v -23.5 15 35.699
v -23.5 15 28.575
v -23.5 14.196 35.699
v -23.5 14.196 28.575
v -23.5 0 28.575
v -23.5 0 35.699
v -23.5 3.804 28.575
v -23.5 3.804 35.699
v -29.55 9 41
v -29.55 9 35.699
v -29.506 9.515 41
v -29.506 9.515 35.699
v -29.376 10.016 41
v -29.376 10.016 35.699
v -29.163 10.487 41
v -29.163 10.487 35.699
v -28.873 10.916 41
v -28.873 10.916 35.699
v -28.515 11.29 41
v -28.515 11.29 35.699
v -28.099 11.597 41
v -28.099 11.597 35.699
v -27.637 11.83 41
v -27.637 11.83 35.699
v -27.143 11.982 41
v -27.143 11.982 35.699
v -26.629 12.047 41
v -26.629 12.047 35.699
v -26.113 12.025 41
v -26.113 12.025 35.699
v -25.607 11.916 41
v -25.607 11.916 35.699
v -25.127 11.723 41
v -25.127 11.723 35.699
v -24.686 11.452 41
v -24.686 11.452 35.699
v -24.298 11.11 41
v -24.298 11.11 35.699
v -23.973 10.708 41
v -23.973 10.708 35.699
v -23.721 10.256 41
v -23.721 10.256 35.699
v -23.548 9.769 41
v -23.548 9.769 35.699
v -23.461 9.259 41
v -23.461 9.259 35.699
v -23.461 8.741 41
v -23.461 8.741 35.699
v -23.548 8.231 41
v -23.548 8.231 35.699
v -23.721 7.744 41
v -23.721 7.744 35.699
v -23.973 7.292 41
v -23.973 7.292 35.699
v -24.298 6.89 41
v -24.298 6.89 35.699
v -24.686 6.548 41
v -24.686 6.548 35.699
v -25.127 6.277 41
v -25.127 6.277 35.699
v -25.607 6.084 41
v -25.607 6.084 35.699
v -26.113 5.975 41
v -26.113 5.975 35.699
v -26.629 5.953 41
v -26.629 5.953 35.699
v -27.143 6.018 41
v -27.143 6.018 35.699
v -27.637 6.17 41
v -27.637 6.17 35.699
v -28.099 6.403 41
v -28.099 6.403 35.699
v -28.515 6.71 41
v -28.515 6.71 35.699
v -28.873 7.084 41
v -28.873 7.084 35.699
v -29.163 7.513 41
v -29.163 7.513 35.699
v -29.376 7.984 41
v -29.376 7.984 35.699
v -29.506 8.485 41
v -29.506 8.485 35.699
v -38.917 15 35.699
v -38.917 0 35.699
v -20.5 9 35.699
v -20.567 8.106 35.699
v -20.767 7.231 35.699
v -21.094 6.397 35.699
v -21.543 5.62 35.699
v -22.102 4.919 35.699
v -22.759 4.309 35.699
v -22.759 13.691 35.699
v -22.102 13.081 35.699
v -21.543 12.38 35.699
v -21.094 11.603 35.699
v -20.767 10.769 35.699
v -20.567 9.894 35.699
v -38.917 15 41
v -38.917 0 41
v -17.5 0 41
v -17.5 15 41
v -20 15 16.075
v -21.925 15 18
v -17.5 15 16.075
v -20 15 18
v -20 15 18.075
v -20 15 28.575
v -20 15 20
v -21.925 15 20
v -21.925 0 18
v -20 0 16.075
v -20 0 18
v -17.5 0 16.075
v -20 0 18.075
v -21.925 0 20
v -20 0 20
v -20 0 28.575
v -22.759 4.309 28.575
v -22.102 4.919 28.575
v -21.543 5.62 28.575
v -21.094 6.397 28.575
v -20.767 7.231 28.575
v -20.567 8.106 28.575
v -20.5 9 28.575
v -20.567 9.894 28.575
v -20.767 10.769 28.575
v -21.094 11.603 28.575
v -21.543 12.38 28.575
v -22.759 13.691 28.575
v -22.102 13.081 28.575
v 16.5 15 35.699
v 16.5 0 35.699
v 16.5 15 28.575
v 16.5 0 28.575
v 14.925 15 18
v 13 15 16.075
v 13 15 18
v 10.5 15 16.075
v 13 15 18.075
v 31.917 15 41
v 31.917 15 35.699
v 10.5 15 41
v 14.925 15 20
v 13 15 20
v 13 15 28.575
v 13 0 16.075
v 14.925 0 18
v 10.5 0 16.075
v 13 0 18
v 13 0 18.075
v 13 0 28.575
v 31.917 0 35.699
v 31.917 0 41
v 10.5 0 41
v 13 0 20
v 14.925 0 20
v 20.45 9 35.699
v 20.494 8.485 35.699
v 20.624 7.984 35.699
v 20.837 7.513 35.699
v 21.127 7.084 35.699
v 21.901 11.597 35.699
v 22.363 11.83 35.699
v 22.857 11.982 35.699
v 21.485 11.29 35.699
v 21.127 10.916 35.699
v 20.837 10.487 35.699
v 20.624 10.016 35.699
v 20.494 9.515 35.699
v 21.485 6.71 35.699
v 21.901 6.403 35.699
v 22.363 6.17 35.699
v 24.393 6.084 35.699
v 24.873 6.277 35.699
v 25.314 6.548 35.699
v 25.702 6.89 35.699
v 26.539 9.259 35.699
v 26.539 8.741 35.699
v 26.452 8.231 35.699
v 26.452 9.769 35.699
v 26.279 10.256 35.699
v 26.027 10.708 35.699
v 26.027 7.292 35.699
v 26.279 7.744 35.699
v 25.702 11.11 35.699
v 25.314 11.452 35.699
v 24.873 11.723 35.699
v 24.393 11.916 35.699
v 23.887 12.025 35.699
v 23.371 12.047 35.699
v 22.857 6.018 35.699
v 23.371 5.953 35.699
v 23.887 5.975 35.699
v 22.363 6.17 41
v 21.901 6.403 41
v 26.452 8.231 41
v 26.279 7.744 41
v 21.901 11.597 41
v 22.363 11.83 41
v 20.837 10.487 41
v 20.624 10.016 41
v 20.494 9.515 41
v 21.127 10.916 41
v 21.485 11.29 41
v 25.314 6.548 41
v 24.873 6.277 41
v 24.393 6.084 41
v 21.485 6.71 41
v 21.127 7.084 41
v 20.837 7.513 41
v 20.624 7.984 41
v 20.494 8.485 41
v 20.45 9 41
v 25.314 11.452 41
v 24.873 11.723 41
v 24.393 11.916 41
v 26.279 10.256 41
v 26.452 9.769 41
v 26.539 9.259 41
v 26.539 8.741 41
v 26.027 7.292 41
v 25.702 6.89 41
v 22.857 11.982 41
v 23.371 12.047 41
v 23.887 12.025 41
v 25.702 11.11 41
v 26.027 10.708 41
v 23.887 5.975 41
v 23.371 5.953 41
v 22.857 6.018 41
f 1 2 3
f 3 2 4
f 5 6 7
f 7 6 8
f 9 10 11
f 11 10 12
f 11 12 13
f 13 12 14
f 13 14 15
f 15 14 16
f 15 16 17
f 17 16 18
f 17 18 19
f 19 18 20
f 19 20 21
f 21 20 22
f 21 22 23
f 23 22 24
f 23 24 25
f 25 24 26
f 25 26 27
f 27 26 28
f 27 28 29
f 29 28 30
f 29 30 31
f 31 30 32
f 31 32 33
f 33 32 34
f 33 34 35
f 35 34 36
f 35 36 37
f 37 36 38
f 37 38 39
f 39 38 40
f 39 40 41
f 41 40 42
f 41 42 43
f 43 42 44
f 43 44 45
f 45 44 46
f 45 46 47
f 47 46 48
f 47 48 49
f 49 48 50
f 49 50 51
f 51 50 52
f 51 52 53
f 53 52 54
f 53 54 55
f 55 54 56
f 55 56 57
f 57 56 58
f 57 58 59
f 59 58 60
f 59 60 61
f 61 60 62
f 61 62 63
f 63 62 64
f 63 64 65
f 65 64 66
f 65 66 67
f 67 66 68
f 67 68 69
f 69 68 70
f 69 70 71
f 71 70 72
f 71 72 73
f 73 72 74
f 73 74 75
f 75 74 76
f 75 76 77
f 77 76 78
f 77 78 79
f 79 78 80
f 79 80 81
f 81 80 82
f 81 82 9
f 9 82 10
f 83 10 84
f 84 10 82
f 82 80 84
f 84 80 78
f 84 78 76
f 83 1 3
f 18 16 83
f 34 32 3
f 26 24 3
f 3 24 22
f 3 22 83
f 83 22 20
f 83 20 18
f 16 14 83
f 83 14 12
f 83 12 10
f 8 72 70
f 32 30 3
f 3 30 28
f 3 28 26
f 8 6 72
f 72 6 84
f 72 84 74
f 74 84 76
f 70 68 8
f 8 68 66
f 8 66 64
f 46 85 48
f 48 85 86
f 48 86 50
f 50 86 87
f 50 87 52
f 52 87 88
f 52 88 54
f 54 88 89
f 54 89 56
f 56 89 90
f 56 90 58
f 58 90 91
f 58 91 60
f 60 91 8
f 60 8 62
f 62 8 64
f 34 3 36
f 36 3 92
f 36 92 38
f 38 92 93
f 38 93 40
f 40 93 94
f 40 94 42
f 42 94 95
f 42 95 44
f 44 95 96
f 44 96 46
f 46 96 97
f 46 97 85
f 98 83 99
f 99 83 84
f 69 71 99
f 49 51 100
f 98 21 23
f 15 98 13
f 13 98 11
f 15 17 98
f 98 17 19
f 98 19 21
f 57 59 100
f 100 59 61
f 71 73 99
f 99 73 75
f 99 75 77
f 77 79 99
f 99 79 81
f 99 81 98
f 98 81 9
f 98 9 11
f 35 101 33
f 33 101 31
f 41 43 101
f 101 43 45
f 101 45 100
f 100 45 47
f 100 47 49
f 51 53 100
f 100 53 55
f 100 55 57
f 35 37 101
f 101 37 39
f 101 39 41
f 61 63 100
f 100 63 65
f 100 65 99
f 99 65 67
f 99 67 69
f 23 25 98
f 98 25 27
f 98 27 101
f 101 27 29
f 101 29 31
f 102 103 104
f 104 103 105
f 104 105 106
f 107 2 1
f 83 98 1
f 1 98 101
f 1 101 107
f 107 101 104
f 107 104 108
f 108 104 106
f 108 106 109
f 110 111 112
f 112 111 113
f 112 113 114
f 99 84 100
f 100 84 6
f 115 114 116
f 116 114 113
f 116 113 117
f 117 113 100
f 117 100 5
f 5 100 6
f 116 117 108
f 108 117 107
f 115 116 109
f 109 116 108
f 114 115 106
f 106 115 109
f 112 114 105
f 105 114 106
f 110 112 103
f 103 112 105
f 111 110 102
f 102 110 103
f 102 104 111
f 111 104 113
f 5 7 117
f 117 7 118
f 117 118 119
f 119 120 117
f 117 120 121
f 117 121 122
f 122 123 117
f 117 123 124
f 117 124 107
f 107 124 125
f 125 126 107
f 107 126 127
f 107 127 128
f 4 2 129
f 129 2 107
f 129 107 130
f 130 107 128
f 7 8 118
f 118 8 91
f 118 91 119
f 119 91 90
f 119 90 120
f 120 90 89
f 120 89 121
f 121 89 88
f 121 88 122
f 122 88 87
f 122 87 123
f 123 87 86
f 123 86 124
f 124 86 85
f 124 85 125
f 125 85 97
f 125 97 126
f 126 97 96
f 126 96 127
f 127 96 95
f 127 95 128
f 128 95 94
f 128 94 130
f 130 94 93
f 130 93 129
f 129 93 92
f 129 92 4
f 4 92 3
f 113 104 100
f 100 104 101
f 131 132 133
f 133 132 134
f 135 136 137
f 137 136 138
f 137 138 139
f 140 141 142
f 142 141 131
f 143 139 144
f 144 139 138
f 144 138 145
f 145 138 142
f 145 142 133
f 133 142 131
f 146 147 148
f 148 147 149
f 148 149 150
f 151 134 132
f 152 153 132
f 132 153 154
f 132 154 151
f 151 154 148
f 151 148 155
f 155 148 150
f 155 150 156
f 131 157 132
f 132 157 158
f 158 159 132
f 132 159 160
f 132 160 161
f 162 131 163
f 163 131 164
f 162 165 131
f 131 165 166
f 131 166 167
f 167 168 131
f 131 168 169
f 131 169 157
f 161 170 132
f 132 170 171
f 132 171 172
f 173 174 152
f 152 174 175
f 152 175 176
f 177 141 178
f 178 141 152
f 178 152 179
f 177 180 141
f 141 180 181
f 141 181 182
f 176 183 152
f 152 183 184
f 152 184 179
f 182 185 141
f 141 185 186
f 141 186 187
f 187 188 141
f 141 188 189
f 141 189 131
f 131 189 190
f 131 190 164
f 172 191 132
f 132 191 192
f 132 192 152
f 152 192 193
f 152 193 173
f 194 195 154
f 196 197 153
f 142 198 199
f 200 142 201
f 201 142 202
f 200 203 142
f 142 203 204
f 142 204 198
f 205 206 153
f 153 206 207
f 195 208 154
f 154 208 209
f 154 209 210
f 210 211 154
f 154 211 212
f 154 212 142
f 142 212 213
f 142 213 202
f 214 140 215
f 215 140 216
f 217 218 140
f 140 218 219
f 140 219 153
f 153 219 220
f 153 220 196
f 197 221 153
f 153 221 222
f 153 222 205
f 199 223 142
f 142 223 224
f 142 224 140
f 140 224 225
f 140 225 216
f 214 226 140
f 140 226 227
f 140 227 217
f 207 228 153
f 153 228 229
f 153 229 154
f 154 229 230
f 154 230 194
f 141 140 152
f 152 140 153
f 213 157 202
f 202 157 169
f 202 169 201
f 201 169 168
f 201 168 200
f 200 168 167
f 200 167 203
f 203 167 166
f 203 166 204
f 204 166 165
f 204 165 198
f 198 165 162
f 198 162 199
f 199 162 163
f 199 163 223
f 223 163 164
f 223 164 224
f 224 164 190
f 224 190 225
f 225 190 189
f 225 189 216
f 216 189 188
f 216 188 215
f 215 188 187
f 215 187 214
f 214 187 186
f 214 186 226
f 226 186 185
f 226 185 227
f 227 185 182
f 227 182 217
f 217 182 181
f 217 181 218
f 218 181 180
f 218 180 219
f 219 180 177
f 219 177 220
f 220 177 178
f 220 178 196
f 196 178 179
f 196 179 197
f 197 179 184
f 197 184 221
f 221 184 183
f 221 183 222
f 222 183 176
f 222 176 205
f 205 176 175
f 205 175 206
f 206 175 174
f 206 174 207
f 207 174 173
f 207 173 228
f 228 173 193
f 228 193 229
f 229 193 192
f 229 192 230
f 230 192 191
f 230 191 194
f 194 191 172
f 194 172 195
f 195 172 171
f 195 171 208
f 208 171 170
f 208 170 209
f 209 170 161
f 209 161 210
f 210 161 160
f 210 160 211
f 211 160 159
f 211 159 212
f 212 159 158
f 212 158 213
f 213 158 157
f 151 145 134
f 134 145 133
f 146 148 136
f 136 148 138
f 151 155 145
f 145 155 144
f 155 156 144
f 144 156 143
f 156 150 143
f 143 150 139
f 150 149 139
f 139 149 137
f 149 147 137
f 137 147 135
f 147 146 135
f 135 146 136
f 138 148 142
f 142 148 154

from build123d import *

# Parameters (mm, degrees)
BOSS_EXTRUDE1_DEPTH = 15
SKETCH3_R           = 3.05
CUT_EXTRUDE1_DEPTH  = 15
CUT_EXTRUDE2_DEPTH  = 59.485528143
SKETCH5_R           = 6
CUT_EXTRUDE3_DEPTH  = 10
SKETCH6_W           = 24.925
SKETCH6_H           = 15
BOSS_EXTRUDE2_DEPTH = 1
SKETCH7_W           = 24.925
SKETCH7_H           = 15
BOSS_EXTRUDE3_DEPTH = 1


with BuildPart() as part:
    # Sketch2 → Boss-Extrude1 (new body)
    with BuildSketch(Plane(origin=(0, 0, 0), x_dir=(1, 0, 0), z_dir=(0, 1, 0))):
        Polygon((-13.5, 0), (6.5, 0), (11.5, -5), (11.5, -41), (31.917309801, -41), (31.917309801, -35.69895288), (16.5, -35.69895288), (16.5, 5), (-23.5, 5), (-23.5, -35.69895288), (-38.917309801, -35.69895288), (-38.917309801, -41), (-18.5, -41), (-18.5, -5), align=None)
    extrude(amount=BOSS_EXTRUDE1_DEPTH)

    # Sketch3 → Cut-Extrude1 (cut)
    with BuildSketch(Plane(origin=(0, 0, 35.69895288), x_dir=(-1, 0, 0), z_dir=(0, 0, -1))):
        with Locations((26.5, 9)):
            Circle(SKETCH3_R)
        with Locations((-23.5, 9)):
            Circle(SKETCH3_R)
    extrude(amount=-CUT_EXTRUDE1_DEPTH, mode=Mode.SUBTRACT)

    # Sketch4 → Cut-Extrude2 (cut, through all)
    with BuildSketch(Plane(origin=(0, 15, 0), x_dir=(1, 0, 0), z_dir=(0, 1, 0))):
        Polygon((-20, -16.075), (-18.422599161, -16.075), (11.422599161, -16.075), (13, -16.075), (14.925, -18), (13, -18), (13, -18.075), (14.925, -20), (13, -20), (13, -28.575), (16.5, -28.575), (24.862996202, -28.575), (24.862996202, 6.300085517), (-33.250787424, 6.300085517), (-33.250787424, -28.575), (-23.5, -28.575), (-20, -28.575), (-20, -20), (-21.925, -20), (-20, -18.075), (-20, -18), (-21.925, -18), align=None)
    extrude(amount=-CUT_EXTRUDE2_DEPTH, mode=Mode.SUBTRACT)


with BuildPart() as cut_extrude2_piece_1:
    # of the separate pieces the step leaves, piece 1, a body of its own (cut_extrude2_pieces)
    add(part.part.solids().sort_by_distance((11.5, 0, 16.075))[0])

    # Sketch7 → Boss-Extrude3 (add)
    with BuildSketch(Plane.ZY.offset(-11.5)):
        with Locations((28.5375, 7.5)):
            Rectangle(SKETCH7_W, SKETCH7_H)
    extrude(amount=BOSS_EXTRUDE3_DEPTH)


with BuildPart() as cut_extrude2_piece_2:
    # of the separate pieces the step leaves, piece 2, a body of its own (cut_extrude2_pieces)
    add(part.part.solids().sort_by_distance((-18.5, 0, 41))[0])

    # Sketch5 → Cut-Extrude3 (cut)
    with BuildSketch(Plane(origin=(0, 0, 35.69895288), x_dir=(-1, 0, 0), z_dir=(0, 0, -1))):
        with Locations((26.5, 9)):
            Circle(SKETCH5_R)
    extrude(amount=CUT_EXTRUDE3_DEPTH, mode=Mode.SUBTRACT)

    # Sketch6 → Boss-Extrude2 (add)
    with BuildSketch(Plane(origin=(-18.5, 0, 0), x_dir=(0, 0, -1), z_dir=(1, 0, 0))):
        with Locations((-28.5375, 7.5)):
            Rectangle(SKETCH6_W, SKETCH6_H)
    extrude(amount=BOSS_EXTRUDE2_DEPTH)


solid = Compound([cut_extrude2_piece_1.part, cut_extrude2_piece_2.part])
